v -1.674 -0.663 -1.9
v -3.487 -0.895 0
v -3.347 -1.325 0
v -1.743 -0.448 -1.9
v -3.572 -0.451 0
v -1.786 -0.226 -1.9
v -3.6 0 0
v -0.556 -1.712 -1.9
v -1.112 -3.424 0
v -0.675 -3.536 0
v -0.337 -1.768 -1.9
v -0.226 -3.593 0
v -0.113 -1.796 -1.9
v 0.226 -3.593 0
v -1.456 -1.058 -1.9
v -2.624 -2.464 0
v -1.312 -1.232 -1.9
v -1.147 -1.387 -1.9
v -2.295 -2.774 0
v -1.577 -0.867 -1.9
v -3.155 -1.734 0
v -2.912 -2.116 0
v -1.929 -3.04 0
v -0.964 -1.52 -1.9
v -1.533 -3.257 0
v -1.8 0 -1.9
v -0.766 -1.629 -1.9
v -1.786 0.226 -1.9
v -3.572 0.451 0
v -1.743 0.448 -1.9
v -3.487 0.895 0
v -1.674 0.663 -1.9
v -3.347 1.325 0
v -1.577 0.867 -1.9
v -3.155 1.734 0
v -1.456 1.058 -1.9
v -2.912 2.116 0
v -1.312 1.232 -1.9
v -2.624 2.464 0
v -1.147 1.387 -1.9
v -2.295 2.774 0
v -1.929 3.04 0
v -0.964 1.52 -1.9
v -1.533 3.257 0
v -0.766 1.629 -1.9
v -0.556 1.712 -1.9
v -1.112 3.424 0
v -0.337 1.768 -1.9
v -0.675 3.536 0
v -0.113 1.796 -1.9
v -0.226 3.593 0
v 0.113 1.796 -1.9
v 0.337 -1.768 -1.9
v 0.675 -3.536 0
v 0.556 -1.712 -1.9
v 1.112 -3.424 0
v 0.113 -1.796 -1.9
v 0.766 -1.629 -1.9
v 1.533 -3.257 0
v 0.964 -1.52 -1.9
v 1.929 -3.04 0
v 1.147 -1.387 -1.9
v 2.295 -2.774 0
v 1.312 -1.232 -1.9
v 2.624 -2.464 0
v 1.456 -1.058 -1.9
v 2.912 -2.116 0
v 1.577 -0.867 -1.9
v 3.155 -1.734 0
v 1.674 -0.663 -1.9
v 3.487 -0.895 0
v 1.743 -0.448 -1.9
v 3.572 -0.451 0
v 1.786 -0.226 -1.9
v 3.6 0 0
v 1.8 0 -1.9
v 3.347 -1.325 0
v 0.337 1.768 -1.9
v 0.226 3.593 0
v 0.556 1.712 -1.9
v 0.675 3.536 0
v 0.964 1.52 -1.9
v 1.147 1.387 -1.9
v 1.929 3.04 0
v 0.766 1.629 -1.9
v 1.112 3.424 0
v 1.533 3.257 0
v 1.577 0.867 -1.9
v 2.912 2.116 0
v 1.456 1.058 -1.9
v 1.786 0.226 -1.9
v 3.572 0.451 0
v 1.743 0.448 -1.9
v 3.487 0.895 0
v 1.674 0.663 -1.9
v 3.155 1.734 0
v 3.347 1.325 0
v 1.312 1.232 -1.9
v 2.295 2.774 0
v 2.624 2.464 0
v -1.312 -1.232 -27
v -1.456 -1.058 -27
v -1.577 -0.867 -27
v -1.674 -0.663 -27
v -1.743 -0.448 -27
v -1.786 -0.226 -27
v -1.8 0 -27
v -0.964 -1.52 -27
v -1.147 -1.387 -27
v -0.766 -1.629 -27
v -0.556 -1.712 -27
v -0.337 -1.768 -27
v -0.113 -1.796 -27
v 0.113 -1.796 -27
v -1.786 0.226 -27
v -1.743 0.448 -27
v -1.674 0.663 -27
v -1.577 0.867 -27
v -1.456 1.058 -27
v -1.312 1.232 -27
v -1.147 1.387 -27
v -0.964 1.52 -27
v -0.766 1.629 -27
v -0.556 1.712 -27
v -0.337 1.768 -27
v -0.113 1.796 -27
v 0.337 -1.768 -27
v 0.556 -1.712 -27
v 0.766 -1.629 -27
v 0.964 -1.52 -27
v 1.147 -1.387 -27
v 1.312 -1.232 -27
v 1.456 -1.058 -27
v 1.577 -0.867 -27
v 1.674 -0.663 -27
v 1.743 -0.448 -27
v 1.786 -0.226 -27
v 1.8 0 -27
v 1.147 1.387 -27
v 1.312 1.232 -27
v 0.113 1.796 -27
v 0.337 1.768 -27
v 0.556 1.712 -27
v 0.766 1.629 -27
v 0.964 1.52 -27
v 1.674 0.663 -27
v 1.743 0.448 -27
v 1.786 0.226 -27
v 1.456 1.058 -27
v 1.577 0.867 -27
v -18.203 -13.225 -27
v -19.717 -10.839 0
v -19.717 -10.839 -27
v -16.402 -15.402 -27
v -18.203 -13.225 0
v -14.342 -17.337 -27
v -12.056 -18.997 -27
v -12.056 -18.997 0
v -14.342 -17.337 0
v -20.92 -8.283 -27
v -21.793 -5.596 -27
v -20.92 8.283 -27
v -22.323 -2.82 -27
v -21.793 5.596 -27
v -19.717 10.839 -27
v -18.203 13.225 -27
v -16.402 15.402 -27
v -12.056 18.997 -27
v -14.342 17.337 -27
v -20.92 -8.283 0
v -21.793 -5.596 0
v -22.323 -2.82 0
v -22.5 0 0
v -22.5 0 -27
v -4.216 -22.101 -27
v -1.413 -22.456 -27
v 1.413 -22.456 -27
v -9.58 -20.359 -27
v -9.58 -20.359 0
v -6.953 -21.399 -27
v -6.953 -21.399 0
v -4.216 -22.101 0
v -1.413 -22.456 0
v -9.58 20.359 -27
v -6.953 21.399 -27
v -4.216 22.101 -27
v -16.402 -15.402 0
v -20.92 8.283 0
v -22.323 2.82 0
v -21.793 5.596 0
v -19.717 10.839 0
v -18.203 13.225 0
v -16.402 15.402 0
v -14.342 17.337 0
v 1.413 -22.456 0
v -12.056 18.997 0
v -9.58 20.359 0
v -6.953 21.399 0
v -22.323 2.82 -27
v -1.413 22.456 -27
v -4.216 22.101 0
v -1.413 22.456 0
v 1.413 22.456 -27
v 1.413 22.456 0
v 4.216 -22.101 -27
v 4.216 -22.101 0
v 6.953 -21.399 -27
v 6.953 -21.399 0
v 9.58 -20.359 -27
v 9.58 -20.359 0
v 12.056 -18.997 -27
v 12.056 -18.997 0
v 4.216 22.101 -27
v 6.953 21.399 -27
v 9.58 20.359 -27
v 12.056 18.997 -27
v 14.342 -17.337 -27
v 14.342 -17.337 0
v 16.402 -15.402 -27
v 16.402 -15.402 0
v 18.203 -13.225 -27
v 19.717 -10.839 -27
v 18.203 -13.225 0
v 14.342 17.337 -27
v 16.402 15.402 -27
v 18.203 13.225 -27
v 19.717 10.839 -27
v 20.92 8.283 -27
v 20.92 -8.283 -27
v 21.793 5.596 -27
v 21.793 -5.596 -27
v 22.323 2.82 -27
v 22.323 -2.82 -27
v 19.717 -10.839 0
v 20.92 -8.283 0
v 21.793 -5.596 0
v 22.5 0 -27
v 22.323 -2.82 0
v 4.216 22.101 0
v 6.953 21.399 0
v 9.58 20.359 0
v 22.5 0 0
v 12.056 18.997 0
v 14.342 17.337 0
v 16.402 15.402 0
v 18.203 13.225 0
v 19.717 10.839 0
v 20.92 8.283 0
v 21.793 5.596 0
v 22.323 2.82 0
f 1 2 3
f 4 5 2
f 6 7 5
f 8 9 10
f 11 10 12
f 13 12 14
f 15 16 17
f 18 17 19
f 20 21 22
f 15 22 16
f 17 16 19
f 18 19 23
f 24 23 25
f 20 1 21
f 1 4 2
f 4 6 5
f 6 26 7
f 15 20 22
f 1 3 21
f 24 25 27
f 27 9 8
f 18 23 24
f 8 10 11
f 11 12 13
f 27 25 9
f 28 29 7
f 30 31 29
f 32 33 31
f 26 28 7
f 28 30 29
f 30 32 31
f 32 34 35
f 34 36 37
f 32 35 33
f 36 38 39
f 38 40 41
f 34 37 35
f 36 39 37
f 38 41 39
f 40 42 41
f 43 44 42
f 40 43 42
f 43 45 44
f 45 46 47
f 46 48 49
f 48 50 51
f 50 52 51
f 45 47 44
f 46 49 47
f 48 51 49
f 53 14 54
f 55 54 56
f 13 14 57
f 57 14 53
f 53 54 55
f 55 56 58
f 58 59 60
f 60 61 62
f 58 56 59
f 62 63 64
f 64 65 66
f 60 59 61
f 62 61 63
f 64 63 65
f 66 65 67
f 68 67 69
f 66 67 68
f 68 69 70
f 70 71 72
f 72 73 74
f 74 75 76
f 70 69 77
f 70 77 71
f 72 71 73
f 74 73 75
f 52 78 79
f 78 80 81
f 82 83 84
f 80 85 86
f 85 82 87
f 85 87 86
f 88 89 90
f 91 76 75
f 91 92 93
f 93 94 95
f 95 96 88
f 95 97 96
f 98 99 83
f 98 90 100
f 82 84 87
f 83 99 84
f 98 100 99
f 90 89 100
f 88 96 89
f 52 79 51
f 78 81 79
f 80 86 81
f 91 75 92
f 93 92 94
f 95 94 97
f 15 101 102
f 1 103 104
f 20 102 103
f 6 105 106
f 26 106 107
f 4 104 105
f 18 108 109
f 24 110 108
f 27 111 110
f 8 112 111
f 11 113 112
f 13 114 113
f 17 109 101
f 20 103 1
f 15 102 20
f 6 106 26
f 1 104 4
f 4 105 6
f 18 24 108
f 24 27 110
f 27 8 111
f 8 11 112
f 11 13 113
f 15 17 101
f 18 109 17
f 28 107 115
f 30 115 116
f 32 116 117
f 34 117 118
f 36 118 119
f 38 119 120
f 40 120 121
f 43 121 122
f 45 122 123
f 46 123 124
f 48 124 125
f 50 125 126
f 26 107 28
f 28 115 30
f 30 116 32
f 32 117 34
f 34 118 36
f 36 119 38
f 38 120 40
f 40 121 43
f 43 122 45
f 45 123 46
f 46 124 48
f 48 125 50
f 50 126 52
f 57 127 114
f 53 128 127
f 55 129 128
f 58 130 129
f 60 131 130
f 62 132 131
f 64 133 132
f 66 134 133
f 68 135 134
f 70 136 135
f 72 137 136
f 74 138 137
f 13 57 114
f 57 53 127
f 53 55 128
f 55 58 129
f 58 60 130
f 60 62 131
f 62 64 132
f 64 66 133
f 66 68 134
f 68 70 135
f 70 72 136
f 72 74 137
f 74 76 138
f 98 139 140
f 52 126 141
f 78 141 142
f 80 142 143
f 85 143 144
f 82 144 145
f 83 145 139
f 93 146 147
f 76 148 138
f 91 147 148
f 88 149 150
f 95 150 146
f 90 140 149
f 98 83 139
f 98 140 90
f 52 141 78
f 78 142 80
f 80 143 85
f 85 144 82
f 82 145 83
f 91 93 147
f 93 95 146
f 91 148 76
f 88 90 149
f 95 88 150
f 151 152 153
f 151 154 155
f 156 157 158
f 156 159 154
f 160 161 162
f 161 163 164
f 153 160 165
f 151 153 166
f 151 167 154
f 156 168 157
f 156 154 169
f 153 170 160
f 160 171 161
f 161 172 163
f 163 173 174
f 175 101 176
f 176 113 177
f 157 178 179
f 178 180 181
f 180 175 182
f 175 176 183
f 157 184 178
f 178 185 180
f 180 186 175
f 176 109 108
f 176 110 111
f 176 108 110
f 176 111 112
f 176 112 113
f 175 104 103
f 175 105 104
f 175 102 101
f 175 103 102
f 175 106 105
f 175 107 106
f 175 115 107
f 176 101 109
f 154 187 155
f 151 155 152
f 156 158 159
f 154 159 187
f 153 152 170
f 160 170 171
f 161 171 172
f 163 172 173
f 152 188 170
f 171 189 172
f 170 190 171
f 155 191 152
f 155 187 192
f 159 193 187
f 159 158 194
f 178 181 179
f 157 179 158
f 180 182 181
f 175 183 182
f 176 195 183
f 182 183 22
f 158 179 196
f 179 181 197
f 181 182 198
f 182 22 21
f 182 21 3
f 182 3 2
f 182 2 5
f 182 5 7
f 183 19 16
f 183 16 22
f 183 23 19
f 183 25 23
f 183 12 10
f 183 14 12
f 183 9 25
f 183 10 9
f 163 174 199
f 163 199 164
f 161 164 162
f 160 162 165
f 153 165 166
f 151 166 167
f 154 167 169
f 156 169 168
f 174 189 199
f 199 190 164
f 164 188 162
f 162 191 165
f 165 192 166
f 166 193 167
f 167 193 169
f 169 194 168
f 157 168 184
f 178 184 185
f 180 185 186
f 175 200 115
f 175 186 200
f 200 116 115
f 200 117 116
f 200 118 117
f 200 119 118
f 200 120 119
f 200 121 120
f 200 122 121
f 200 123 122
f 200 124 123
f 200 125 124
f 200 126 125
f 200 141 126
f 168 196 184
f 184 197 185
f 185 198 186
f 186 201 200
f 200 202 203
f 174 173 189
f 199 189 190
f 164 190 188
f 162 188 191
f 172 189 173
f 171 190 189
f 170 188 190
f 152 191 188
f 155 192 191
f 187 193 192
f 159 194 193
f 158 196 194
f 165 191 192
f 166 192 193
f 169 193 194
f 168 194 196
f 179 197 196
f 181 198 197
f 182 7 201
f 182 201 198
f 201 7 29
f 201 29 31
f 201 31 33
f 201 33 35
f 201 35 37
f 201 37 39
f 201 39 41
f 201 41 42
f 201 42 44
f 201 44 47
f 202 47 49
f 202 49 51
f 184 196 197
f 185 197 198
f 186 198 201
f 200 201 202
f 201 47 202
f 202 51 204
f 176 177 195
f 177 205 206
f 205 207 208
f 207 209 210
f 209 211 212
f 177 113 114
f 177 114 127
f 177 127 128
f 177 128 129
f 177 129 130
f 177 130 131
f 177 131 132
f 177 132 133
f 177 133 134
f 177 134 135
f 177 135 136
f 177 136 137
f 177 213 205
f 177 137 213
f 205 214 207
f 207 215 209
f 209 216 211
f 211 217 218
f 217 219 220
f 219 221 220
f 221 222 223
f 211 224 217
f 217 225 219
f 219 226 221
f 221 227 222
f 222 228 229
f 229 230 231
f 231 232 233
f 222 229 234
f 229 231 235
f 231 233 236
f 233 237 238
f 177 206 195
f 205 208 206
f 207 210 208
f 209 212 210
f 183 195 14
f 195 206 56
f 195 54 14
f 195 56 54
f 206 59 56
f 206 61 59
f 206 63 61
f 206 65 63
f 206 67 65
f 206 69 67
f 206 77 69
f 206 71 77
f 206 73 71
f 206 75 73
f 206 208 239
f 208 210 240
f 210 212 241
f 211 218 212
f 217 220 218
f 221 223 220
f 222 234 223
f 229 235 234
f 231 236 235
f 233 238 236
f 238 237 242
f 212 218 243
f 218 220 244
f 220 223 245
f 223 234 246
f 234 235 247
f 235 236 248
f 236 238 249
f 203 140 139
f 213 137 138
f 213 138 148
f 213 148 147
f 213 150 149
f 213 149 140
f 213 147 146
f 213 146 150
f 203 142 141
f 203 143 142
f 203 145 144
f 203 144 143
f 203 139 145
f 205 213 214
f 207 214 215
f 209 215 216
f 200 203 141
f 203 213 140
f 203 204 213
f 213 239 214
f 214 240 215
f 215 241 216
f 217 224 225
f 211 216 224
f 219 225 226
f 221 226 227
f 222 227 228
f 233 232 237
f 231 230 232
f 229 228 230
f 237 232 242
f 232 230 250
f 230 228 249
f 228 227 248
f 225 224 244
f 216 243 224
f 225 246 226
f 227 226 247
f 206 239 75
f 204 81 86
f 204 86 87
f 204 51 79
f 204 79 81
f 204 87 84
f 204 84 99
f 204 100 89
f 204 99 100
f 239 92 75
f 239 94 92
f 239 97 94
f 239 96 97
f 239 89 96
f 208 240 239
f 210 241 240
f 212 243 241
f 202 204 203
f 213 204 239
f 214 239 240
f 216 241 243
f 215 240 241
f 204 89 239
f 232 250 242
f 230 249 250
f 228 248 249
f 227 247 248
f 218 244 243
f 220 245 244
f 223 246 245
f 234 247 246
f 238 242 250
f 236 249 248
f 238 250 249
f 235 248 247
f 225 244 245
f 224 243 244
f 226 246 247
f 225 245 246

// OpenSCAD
$fn = 50;

difference() {
	union() {
		translate(v = [0, 0, -27.0]) {
			cylinder(h = 27, r = 22.5);
		}
	}
	union() {
		translate(v = [0, 0, 0]) {
			rotate(a = [0, 0, 0]) {
				difference() {
					union() {
						translate(v = [0, 0, -30.0]) {
							cylinder(h = 30, r = 1.5);
						}
						translate(v = [0, 0, -1.9]) {
							cylinder(h = 1.9, r1 = 1.8, r2 = 3.6);
						}
						translate(v = [0, 0, -30.0]) {
							cylinder(h = 30, r = 1.8);
						}
						translate(v = [0, 0, -30.0]) {
							cylinder(h = 30, r = 1.5);
						}
					}
					union();
				}
			}
		}
	}
}
